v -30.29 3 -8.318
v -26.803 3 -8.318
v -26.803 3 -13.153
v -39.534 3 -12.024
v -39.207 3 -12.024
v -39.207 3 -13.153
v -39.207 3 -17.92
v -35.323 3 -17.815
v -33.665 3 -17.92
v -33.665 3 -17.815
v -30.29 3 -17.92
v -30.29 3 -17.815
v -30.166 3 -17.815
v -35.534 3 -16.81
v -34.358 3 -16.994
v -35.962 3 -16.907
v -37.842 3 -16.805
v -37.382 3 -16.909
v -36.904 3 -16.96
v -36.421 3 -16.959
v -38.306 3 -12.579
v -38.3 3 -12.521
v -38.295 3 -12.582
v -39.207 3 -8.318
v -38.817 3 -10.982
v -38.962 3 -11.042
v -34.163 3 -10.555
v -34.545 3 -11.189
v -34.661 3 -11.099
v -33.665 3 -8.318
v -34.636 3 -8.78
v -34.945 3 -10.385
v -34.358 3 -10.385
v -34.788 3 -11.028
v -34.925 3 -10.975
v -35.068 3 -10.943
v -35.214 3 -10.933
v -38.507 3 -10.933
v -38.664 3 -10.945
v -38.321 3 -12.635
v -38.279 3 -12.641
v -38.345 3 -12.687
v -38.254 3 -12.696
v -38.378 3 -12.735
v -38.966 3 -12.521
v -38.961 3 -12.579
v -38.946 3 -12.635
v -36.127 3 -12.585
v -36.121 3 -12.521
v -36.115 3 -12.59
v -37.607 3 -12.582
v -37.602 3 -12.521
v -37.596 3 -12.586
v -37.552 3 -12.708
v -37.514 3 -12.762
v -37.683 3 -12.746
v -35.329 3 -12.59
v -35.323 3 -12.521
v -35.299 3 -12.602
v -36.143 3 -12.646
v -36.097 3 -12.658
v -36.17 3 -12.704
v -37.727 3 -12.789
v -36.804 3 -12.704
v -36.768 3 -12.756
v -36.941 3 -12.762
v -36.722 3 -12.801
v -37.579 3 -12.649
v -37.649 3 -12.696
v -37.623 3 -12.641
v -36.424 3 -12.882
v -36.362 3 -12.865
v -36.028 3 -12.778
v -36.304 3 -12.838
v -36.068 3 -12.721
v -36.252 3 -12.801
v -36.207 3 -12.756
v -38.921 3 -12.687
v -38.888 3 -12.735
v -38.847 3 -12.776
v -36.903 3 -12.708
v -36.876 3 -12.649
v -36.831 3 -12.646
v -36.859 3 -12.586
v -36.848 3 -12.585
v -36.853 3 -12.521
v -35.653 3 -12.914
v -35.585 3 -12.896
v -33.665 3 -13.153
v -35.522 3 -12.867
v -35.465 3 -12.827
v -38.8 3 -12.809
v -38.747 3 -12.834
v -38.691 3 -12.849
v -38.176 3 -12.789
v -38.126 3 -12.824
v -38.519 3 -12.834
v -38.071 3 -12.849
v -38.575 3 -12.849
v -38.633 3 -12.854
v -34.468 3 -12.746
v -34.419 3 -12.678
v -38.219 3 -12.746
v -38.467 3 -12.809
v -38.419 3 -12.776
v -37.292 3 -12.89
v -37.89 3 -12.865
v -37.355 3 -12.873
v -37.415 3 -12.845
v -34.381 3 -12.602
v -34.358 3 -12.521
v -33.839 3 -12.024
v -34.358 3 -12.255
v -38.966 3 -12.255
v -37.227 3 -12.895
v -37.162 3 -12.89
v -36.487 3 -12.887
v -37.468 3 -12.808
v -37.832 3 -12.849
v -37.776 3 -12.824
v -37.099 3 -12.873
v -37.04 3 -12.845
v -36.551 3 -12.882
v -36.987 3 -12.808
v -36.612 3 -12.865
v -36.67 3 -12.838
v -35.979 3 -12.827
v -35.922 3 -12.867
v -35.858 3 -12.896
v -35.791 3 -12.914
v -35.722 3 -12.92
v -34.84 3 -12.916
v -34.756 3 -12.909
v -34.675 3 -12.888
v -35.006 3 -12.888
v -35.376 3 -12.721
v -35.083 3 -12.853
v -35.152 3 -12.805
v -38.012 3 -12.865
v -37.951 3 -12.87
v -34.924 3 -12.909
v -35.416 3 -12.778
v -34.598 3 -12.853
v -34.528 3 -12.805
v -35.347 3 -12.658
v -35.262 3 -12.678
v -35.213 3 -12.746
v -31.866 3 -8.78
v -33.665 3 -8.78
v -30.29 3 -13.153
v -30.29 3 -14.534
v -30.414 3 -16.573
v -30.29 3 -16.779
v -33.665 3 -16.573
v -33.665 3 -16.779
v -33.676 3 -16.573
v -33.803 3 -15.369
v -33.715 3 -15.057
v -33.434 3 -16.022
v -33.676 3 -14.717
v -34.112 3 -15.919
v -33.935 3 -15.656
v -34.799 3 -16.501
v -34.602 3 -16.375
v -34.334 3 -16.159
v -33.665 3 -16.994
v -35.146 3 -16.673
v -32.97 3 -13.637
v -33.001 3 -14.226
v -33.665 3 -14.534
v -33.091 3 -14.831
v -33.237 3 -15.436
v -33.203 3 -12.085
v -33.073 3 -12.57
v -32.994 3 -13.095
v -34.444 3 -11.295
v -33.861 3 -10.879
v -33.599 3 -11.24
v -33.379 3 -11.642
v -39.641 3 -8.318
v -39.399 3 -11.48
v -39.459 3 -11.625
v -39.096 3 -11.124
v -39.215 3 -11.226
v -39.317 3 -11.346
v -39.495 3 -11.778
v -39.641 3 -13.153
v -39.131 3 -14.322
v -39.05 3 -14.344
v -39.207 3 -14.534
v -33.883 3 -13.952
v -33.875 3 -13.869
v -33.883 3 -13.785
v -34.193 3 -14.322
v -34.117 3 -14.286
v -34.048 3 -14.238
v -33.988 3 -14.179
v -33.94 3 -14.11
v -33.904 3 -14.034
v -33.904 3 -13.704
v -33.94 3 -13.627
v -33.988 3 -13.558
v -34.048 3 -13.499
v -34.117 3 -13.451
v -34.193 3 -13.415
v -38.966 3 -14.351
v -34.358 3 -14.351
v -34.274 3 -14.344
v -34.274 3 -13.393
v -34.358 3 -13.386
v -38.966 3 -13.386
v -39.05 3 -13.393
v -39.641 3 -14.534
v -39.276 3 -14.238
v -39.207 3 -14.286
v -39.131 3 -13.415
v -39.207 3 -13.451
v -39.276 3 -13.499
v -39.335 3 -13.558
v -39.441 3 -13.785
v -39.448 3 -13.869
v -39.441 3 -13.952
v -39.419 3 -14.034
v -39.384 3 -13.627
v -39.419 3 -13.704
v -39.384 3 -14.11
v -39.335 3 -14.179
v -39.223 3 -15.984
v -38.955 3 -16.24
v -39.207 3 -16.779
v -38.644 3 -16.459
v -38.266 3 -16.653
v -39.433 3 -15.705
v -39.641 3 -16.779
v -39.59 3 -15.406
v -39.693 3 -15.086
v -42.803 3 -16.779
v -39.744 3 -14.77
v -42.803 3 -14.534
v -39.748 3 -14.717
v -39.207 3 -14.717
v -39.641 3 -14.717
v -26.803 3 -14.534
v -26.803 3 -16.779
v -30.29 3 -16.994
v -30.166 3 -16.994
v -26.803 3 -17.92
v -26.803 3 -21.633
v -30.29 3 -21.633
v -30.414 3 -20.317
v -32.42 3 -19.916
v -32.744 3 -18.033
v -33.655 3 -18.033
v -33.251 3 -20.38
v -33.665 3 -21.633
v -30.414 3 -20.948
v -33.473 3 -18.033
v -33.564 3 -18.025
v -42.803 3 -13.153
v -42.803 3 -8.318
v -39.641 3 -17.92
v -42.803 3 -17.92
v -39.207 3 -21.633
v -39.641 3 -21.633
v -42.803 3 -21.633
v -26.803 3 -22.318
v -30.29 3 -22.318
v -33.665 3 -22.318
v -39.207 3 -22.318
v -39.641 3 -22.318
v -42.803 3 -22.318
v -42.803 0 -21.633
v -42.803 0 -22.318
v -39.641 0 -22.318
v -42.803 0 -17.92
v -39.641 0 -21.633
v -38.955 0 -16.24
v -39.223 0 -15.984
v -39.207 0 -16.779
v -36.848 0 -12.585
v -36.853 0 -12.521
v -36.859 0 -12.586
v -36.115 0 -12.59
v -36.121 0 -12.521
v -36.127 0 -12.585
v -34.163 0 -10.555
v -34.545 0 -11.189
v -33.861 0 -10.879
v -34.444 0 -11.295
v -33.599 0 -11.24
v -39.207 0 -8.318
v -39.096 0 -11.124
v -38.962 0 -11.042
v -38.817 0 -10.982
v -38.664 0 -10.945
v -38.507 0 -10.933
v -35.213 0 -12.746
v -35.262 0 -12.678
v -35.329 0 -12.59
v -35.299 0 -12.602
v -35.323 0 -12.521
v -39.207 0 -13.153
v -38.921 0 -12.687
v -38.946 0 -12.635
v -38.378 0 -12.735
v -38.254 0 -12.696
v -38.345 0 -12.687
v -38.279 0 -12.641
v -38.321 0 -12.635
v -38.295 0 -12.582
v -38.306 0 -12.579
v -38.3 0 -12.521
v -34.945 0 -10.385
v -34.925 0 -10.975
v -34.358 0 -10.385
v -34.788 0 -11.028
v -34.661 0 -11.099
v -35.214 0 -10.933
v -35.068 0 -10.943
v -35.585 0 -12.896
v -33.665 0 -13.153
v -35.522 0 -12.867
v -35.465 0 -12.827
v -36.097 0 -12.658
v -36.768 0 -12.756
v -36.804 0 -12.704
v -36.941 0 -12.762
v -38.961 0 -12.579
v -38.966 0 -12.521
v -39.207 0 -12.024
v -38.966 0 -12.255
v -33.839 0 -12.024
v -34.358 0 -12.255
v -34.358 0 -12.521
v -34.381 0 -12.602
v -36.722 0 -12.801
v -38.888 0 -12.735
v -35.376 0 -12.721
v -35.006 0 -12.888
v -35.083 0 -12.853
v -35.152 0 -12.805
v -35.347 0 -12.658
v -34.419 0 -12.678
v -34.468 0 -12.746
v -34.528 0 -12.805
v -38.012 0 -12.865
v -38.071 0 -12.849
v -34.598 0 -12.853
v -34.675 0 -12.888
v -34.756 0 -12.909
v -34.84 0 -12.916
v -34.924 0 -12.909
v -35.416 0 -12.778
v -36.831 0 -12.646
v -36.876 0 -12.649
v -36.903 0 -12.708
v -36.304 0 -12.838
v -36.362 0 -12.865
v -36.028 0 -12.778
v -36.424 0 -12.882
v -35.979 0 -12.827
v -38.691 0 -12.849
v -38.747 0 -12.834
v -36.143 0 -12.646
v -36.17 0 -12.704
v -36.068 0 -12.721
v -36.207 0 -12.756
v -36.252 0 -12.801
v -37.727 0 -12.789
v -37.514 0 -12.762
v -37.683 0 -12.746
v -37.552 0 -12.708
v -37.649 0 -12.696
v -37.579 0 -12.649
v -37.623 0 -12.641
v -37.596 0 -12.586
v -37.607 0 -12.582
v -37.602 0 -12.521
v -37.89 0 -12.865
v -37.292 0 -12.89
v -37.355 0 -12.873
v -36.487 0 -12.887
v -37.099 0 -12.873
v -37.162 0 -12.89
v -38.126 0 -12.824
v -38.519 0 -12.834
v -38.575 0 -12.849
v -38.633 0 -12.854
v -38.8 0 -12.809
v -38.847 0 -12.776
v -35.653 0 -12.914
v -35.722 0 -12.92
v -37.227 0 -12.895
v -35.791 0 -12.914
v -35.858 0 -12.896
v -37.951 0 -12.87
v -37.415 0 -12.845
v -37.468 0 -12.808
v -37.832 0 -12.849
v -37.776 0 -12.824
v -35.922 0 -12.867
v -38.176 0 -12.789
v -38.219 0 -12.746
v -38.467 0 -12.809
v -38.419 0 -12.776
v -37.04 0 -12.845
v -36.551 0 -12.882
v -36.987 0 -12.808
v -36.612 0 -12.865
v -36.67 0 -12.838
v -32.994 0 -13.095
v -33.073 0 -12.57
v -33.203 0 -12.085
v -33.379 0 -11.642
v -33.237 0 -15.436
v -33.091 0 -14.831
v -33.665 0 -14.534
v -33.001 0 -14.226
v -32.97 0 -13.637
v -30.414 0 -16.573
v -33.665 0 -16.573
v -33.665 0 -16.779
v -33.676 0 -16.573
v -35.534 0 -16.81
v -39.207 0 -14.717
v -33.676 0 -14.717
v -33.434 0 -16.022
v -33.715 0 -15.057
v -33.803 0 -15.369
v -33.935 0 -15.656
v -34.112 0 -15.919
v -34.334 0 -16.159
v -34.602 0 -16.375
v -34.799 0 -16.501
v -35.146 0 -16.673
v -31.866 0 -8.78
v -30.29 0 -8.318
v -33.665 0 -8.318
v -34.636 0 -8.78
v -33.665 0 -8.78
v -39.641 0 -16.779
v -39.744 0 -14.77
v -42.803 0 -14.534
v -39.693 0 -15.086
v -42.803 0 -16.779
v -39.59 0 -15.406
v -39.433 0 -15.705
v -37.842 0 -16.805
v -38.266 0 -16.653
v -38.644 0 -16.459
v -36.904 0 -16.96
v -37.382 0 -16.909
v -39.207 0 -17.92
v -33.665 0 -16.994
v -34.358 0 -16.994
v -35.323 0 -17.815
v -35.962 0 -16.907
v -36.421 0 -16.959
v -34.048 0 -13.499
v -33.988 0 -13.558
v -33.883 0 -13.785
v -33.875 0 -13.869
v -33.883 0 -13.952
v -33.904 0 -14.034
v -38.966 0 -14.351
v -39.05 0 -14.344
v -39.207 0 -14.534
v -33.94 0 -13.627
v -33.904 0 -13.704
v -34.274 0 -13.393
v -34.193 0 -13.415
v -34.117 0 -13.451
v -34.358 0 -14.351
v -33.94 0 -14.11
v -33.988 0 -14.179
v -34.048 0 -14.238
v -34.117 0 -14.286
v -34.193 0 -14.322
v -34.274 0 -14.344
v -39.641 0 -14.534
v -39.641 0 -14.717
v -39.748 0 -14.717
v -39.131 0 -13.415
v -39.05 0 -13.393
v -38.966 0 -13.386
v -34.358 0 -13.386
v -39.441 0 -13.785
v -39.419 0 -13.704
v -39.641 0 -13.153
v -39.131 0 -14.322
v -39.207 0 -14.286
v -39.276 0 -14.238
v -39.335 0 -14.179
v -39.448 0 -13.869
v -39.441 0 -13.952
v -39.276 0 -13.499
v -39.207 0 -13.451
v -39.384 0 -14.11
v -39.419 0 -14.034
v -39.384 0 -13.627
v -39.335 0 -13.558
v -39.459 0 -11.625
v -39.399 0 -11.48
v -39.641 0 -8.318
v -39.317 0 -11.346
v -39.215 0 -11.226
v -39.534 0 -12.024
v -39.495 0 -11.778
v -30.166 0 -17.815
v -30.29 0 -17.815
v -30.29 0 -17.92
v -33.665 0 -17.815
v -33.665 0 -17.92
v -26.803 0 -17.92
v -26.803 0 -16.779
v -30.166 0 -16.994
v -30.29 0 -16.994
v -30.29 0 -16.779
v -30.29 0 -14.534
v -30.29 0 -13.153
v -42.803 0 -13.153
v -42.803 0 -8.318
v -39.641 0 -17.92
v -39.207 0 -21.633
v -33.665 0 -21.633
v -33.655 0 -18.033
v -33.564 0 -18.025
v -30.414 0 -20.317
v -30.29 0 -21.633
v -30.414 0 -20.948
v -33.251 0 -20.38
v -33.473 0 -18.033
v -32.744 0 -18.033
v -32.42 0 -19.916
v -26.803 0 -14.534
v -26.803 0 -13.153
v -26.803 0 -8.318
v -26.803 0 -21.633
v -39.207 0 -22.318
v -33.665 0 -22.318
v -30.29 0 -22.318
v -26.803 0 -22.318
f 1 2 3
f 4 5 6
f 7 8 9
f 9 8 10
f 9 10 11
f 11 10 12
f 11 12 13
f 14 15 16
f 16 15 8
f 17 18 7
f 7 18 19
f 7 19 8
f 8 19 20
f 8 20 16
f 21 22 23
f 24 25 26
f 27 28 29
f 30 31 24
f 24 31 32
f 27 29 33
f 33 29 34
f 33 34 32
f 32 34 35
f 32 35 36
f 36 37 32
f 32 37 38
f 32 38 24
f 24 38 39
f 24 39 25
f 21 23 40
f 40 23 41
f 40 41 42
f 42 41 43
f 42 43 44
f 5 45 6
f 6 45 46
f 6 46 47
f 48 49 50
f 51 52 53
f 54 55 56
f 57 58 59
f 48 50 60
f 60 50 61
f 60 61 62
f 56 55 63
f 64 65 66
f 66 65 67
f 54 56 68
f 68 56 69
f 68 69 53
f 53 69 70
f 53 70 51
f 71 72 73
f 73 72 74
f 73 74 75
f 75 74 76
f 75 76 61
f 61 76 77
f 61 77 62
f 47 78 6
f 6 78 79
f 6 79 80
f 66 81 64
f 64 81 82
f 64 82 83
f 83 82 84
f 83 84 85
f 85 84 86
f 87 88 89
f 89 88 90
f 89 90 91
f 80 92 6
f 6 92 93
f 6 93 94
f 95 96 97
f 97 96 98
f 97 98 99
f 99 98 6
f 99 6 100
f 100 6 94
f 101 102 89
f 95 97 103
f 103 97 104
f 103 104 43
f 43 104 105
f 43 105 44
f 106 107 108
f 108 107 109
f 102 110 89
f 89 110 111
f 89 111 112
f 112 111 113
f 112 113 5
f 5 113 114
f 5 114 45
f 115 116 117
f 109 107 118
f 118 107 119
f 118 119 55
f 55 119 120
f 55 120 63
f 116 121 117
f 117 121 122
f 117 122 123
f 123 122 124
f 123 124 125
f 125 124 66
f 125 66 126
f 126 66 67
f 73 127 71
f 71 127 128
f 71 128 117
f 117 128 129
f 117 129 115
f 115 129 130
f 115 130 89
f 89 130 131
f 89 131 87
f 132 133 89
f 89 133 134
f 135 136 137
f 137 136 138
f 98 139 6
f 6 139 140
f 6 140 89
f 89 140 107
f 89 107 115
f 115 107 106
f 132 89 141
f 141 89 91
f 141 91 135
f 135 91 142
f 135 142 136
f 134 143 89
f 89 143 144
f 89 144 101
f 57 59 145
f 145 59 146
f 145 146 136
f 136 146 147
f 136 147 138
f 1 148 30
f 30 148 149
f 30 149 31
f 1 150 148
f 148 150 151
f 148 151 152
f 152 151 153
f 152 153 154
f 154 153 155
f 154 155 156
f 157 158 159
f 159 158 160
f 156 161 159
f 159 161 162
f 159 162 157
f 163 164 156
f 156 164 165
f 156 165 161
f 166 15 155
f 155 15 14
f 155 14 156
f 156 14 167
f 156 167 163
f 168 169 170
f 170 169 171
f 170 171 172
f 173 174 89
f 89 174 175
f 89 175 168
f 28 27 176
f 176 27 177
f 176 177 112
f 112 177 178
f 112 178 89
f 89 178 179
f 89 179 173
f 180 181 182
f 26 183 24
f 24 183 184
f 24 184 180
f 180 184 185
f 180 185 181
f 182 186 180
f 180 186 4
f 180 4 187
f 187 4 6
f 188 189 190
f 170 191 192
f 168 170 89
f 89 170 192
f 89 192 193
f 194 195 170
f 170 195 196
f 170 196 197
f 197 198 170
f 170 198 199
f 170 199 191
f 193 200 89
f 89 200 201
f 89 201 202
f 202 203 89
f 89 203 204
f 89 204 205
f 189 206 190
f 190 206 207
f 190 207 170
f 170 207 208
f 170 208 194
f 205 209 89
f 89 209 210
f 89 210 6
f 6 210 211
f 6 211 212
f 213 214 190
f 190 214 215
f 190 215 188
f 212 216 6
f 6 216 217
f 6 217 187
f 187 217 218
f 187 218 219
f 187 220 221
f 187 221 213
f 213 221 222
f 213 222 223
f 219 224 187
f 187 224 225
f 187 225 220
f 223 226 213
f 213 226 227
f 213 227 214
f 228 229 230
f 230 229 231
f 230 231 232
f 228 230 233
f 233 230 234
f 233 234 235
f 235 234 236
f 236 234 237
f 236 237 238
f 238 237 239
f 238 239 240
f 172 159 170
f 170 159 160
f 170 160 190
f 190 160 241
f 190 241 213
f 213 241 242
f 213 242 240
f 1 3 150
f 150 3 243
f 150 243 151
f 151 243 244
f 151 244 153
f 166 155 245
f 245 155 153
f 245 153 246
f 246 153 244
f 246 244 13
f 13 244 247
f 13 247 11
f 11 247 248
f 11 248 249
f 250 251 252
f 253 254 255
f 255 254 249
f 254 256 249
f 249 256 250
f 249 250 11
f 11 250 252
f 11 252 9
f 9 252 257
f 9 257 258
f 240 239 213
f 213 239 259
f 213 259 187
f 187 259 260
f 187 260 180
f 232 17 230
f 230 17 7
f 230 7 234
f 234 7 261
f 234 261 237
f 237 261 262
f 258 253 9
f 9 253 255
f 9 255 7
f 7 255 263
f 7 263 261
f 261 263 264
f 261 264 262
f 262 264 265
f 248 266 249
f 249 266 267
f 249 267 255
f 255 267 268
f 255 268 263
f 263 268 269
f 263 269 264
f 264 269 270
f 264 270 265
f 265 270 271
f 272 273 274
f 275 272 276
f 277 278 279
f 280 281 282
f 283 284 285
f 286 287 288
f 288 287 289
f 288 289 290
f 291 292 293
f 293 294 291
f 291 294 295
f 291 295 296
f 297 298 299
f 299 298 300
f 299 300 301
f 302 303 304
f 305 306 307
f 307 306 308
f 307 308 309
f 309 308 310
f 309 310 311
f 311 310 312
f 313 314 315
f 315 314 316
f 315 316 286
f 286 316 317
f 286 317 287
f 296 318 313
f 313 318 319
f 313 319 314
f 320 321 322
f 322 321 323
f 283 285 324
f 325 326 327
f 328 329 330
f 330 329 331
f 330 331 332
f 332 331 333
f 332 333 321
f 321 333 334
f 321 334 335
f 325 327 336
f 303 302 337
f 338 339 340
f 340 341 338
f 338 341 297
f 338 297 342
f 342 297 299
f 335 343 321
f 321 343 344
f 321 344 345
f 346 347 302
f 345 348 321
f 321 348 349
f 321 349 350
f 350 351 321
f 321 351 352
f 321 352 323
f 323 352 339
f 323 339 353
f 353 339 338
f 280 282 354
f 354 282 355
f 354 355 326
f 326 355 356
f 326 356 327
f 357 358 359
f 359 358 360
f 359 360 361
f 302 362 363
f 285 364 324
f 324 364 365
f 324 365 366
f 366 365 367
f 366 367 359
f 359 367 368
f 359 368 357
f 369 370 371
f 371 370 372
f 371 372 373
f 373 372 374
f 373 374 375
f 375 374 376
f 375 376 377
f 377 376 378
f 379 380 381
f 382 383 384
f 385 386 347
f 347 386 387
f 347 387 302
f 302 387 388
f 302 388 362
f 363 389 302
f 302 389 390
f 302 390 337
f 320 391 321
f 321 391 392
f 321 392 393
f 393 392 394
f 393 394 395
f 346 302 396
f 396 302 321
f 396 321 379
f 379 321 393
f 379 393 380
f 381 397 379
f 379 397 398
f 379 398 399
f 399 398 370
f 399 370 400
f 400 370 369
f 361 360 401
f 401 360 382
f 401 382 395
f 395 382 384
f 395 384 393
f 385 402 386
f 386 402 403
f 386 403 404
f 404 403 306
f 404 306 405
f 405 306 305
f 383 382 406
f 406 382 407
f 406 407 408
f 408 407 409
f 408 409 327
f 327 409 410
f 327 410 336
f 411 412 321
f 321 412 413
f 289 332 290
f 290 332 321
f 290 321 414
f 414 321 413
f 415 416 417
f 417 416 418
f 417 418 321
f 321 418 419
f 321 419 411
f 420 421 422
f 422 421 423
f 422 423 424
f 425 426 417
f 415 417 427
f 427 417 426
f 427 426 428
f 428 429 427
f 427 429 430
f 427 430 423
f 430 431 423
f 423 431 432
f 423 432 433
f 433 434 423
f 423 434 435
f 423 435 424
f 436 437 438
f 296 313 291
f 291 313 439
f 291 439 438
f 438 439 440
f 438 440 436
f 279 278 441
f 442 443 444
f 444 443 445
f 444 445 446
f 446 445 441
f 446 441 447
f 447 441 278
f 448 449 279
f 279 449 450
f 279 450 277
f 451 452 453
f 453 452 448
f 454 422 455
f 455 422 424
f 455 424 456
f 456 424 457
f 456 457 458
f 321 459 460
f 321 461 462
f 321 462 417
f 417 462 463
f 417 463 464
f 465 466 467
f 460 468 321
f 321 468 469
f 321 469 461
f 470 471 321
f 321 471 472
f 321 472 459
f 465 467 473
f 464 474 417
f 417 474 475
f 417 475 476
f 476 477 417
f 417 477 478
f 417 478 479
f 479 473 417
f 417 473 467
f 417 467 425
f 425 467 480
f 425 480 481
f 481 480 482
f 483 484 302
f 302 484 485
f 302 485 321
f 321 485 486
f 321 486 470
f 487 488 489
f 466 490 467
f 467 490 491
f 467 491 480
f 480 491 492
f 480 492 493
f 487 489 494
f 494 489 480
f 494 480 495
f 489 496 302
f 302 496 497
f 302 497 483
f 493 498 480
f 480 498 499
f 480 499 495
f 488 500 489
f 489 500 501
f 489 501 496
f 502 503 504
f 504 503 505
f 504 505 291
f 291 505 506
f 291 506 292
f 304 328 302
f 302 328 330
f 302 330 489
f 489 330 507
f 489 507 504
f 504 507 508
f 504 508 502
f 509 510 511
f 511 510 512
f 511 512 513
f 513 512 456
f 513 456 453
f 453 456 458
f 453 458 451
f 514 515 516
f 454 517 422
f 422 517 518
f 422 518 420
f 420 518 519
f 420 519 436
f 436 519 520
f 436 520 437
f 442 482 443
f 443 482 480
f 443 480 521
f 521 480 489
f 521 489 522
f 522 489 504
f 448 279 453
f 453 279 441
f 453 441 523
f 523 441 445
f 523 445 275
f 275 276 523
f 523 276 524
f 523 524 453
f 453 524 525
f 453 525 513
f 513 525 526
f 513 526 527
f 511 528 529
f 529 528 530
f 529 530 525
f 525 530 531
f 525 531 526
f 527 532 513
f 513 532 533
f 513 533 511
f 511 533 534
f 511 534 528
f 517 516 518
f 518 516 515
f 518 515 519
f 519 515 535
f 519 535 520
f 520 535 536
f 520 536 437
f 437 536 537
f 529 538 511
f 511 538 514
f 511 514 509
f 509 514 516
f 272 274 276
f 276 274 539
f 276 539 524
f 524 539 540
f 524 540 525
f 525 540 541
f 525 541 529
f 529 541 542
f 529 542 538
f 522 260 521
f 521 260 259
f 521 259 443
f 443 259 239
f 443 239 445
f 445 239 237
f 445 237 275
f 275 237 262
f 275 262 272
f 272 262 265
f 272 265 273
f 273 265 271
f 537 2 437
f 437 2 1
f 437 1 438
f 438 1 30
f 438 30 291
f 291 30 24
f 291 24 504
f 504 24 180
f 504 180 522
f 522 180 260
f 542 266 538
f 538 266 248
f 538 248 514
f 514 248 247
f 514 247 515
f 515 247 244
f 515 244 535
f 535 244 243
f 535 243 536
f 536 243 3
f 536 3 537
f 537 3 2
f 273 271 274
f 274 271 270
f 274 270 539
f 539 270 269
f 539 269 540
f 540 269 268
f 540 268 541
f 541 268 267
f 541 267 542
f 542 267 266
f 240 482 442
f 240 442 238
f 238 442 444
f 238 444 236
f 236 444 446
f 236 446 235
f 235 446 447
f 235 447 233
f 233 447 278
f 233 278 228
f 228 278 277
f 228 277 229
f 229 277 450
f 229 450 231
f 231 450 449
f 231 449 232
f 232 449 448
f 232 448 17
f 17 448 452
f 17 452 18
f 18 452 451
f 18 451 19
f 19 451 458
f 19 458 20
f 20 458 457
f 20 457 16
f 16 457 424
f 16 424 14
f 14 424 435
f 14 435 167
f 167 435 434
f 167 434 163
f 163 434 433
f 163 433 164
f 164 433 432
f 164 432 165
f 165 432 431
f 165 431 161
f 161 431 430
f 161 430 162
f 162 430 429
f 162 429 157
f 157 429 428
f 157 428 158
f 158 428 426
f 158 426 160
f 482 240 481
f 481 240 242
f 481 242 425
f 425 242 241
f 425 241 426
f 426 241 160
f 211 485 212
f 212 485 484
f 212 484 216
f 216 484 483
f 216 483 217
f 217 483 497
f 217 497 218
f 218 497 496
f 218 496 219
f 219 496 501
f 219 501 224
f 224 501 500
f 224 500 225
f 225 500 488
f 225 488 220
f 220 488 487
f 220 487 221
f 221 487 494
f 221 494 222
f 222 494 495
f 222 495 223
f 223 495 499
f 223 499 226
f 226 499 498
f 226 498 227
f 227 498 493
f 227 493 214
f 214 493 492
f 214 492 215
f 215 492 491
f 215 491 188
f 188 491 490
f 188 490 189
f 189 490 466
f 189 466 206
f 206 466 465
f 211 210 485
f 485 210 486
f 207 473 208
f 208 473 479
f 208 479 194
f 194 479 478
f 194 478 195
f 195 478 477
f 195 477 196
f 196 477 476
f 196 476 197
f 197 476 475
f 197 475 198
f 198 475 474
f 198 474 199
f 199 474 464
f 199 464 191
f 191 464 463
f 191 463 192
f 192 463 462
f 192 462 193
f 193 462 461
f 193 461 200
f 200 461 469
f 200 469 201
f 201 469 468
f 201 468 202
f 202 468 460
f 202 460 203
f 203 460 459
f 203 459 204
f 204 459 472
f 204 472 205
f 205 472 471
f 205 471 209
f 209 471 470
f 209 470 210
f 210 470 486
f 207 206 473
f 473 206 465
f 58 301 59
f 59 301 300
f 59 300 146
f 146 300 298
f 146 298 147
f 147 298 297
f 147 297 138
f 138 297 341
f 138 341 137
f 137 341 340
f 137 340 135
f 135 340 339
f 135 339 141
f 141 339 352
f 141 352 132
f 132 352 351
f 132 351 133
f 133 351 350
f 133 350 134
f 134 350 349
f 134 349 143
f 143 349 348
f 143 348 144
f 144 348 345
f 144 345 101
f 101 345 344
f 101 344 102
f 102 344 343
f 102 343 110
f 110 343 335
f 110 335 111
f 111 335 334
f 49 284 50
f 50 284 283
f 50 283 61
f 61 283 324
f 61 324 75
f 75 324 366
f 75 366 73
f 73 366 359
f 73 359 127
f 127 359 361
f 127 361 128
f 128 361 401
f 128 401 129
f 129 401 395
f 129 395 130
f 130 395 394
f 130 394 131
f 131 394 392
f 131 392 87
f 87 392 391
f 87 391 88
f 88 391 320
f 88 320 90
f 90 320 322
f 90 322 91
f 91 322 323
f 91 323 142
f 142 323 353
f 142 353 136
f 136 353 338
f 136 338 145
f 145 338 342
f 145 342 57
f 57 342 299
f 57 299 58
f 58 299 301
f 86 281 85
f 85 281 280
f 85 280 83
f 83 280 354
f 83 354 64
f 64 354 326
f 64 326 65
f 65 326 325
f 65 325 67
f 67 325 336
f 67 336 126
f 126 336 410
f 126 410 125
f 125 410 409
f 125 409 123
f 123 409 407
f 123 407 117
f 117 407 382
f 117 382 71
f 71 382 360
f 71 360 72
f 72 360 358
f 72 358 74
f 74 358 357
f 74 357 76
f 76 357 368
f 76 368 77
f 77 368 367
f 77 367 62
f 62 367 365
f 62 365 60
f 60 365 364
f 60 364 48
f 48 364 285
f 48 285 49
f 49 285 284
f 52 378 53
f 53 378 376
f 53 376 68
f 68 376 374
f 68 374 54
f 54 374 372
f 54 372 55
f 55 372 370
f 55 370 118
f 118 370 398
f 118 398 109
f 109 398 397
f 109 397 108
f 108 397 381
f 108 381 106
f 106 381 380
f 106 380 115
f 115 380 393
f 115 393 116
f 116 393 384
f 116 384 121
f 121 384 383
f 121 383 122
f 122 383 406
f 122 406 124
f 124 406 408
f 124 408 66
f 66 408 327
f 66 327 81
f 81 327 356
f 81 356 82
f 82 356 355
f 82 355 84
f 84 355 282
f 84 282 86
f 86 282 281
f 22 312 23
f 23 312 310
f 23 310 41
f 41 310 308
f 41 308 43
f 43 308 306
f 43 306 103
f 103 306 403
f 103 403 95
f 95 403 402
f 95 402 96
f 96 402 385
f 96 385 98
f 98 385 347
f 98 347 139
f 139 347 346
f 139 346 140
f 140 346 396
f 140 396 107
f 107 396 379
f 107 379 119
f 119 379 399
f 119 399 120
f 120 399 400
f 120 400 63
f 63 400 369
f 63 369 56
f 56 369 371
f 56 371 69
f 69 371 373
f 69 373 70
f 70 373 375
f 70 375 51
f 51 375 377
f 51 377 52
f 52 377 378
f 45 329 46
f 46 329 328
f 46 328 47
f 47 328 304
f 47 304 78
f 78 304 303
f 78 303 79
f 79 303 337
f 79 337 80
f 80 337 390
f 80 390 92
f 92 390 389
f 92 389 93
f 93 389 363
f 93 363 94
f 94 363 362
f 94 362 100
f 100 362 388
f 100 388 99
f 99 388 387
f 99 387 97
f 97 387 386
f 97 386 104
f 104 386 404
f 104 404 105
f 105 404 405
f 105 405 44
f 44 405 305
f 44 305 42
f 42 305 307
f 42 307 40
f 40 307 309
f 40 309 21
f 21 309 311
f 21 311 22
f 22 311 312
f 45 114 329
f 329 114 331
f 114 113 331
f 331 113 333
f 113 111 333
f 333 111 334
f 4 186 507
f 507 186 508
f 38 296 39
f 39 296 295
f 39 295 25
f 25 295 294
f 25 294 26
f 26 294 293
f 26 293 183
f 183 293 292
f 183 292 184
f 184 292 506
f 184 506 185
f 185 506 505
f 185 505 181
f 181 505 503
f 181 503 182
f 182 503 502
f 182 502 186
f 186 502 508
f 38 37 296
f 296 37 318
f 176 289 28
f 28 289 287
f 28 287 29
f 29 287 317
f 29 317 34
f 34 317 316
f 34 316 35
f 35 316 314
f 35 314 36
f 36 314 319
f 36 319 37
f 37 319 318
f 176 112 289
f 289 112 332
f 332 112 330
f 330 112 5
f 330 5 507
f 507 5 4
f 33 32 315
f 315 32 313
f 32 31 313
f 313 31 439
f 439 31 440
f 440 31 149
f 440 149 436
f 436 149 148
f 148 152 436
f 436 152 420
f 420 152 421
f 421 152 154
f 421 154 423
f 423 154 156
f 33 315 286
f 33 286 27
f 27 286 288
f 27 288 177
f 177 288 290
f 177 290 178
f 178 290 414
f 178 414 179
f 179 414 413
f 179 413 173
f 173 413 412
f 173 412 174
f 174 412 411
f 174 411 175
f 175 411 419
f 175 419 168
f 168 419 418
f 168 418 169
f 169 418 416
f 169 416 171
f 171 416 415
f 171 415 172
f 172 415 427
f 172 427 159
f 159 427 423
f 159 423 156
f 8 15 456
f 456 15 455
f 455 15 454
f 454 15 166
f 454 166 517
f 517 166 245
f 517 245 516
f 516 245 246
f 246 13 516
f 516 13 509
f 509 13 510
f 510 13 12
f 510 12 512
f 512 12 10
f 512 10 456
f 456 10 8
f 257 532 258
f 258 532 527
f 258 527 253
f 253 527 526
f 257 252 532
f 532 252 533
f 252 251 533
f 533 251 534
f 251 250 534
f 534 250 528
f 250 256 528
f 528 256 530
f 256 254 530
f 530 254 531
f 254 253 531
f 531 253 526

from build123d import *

# Parameters (mm, degrees)
SKETCH1_W           = 16
SKETCH1_H           = 14
BOSS_EXTRUDE1_DEPTH = 3


with BuildPart() as part:
    # Sketch1 → Boss-Extrude1 (new body)
    with BuildSketch(Plane(origin=(0, 0, 0), x_dir=(1, 0, 0), z_dir=(0, 1, 0))):
        with Locations((-34.802547771, 15.318471338)):
            Rectangle(SKETCH1_W, SKETCH1_H)
        with BuildLine():
            Line((-39.747765047, 14.717010334), (-33.675750706, 14.717010334))
            add(Edge.make_bspline(
                [(-39.747765047, 14.717010334), (-39.561120933, 17.701061711), (-33.79747245, 17.731175732), (-33.675750706, 14.717010334)],
                knots=[0, 0, 0, 0, 1, 1, 1, 1], degree=3))
        make_face(mode=Mode.SUBTRACT)
        with BuildLine():
            Line((-38.965889228, 14.351025908), (-34.357812591, 14.351025908))
            ThreePointArc((-34.357812591, 14.351025908), (-33.875378575, 13.868591892), (-34.357812591, 13.386157876))
            Line((-34.357812591, 13.386157876), (-38.965889228, 13.386157876))
            ThreePointArc((-38.965889228, 13.386157876), (-39.448323244, 13.868591892), (-38.965889228, 14.351025908))
        make_face(mode=Mode.SUBTRACT)
        with BuildLine():
            Line((-39.533825085, 12.024167234), (-33.838965327, 12.024167234))
            Line((-33.838965327, 12.024167234), (-34.443549741, 11.294520332))
            ThreePointArc((-34.443549741, 11.294520332), (-34.788137861, 11.027556057), (-35.213561017, 10.932550609))
            Line((-35.213561017, 10.932550609), (-38.507427743, 10.932550609))
            ThreePointArc((-38.507427743, 10.932550609), (-39.157744536, 11.172887481), (-39.495471122, 11.778374472))
            Line((-39.495471122, 11.778374472), (-39.533825085, 12.024167234))
        make_face(mode=Mode.SUBTRACT)
        with BuildLine():
            Line((-38.965889228, 12.521103778), (-38.965889228, 12.254933286))
            Line((-38.965889228, 12.254933286), (-34.357812591, 12.254933286))
            Line((-34.357812591, 12.254933286), (-34.357812591, 12.521103778))
            ThreePointArc((-34.357812591, 12.521103778), (-34.840246607, 12.916411942), (-35.322680624, 12.521103778))
            ThreePointArc((-35.322680624, 12.521103778), (-35.721936361, 12.920359515), (-36.121192098, 12.521103778))
            ThreePointArc((-36.121192098, 12.521103778), (-36.487176524, 12.887088204), (-36.85316095, 12.521103778))
            ThreePointArc((-36.85316095, 12.521103778), (-37.227463204, 12.895406032), (-37.601765458, 12.521103778))
            ThreePointArc((-37.601765458, 12.521103778), (-37.951114229, 12.870452548), (-38.300462999, 12.521103778))
            ThreePointArc((-38.300462999, 12.521103778), (-38.633176113, 12.853816892), (-38.965889228, 12.521103778))
        make_face(mode=Mode.SUBTRACT)
        with BuildLine():
            Line((-34.945417172, 10.384522547), (-34.635673461, 8.779972828))
            Line((-34.635673461, 8.779972828), (-31.865915017, 8.779972828))
            Line((-31.865915017, 8.779972828), (-30.414179557, 16.573500036))
            Line((-30.414179557, 16.573500036), (-33.675750706, 16.573500036))
            add(Edge.make_bspline(
                [(-33.675750706, 16.573500036), (-32.735887192, 14.661705952), (-32.525301104, 11.881425098), (-34.357812591, 10.384522547)],
                knots=[0, 0, 0, 0, 1, 1, 1, 1], degree=3))
            Line((-34.357812591, 10.384522547), (-34.945417172, 10.384522547))
        make_face(mode=Mode.SUBTRACT)
        Polygon((-34.357812591, 16.993739248), (-30.165856386, 16.993739248), (-30.165856386, 17.815115891), (-35.322680624, 17.815115891), align=None, mode=Mode.SUBTRACT)
        with BuildLine():
            Line((-33.473024699, 18.033096236), (-32.744268505, 18.033096236))
            Line((-32.744268505, 18.033096236), (-32.419866706, 19.916311952))
            Line((-32.419866706, 19.916311952), (-30.414179557, 20.317449381))
            Line((-30.414179557, 20.317449381), (-30.414179557, 20.9478082))
            Line((-30.414179557, 20.9478082), (-33.250794239, 20.380485263))
            Line((-33.250794239, 20.380485263), (-33.655154301, 18.033096236))
            ThreePointArc((-33.655154301, 18.033096236), (-33.5640895, 18.025310185), (-33.473024699, 18.033096236))
        make_face(mode=Mode.SUBTRACT)
    extrude(amount=BOSS_EXTRUDE1_DEPTH)


solid = part.part
